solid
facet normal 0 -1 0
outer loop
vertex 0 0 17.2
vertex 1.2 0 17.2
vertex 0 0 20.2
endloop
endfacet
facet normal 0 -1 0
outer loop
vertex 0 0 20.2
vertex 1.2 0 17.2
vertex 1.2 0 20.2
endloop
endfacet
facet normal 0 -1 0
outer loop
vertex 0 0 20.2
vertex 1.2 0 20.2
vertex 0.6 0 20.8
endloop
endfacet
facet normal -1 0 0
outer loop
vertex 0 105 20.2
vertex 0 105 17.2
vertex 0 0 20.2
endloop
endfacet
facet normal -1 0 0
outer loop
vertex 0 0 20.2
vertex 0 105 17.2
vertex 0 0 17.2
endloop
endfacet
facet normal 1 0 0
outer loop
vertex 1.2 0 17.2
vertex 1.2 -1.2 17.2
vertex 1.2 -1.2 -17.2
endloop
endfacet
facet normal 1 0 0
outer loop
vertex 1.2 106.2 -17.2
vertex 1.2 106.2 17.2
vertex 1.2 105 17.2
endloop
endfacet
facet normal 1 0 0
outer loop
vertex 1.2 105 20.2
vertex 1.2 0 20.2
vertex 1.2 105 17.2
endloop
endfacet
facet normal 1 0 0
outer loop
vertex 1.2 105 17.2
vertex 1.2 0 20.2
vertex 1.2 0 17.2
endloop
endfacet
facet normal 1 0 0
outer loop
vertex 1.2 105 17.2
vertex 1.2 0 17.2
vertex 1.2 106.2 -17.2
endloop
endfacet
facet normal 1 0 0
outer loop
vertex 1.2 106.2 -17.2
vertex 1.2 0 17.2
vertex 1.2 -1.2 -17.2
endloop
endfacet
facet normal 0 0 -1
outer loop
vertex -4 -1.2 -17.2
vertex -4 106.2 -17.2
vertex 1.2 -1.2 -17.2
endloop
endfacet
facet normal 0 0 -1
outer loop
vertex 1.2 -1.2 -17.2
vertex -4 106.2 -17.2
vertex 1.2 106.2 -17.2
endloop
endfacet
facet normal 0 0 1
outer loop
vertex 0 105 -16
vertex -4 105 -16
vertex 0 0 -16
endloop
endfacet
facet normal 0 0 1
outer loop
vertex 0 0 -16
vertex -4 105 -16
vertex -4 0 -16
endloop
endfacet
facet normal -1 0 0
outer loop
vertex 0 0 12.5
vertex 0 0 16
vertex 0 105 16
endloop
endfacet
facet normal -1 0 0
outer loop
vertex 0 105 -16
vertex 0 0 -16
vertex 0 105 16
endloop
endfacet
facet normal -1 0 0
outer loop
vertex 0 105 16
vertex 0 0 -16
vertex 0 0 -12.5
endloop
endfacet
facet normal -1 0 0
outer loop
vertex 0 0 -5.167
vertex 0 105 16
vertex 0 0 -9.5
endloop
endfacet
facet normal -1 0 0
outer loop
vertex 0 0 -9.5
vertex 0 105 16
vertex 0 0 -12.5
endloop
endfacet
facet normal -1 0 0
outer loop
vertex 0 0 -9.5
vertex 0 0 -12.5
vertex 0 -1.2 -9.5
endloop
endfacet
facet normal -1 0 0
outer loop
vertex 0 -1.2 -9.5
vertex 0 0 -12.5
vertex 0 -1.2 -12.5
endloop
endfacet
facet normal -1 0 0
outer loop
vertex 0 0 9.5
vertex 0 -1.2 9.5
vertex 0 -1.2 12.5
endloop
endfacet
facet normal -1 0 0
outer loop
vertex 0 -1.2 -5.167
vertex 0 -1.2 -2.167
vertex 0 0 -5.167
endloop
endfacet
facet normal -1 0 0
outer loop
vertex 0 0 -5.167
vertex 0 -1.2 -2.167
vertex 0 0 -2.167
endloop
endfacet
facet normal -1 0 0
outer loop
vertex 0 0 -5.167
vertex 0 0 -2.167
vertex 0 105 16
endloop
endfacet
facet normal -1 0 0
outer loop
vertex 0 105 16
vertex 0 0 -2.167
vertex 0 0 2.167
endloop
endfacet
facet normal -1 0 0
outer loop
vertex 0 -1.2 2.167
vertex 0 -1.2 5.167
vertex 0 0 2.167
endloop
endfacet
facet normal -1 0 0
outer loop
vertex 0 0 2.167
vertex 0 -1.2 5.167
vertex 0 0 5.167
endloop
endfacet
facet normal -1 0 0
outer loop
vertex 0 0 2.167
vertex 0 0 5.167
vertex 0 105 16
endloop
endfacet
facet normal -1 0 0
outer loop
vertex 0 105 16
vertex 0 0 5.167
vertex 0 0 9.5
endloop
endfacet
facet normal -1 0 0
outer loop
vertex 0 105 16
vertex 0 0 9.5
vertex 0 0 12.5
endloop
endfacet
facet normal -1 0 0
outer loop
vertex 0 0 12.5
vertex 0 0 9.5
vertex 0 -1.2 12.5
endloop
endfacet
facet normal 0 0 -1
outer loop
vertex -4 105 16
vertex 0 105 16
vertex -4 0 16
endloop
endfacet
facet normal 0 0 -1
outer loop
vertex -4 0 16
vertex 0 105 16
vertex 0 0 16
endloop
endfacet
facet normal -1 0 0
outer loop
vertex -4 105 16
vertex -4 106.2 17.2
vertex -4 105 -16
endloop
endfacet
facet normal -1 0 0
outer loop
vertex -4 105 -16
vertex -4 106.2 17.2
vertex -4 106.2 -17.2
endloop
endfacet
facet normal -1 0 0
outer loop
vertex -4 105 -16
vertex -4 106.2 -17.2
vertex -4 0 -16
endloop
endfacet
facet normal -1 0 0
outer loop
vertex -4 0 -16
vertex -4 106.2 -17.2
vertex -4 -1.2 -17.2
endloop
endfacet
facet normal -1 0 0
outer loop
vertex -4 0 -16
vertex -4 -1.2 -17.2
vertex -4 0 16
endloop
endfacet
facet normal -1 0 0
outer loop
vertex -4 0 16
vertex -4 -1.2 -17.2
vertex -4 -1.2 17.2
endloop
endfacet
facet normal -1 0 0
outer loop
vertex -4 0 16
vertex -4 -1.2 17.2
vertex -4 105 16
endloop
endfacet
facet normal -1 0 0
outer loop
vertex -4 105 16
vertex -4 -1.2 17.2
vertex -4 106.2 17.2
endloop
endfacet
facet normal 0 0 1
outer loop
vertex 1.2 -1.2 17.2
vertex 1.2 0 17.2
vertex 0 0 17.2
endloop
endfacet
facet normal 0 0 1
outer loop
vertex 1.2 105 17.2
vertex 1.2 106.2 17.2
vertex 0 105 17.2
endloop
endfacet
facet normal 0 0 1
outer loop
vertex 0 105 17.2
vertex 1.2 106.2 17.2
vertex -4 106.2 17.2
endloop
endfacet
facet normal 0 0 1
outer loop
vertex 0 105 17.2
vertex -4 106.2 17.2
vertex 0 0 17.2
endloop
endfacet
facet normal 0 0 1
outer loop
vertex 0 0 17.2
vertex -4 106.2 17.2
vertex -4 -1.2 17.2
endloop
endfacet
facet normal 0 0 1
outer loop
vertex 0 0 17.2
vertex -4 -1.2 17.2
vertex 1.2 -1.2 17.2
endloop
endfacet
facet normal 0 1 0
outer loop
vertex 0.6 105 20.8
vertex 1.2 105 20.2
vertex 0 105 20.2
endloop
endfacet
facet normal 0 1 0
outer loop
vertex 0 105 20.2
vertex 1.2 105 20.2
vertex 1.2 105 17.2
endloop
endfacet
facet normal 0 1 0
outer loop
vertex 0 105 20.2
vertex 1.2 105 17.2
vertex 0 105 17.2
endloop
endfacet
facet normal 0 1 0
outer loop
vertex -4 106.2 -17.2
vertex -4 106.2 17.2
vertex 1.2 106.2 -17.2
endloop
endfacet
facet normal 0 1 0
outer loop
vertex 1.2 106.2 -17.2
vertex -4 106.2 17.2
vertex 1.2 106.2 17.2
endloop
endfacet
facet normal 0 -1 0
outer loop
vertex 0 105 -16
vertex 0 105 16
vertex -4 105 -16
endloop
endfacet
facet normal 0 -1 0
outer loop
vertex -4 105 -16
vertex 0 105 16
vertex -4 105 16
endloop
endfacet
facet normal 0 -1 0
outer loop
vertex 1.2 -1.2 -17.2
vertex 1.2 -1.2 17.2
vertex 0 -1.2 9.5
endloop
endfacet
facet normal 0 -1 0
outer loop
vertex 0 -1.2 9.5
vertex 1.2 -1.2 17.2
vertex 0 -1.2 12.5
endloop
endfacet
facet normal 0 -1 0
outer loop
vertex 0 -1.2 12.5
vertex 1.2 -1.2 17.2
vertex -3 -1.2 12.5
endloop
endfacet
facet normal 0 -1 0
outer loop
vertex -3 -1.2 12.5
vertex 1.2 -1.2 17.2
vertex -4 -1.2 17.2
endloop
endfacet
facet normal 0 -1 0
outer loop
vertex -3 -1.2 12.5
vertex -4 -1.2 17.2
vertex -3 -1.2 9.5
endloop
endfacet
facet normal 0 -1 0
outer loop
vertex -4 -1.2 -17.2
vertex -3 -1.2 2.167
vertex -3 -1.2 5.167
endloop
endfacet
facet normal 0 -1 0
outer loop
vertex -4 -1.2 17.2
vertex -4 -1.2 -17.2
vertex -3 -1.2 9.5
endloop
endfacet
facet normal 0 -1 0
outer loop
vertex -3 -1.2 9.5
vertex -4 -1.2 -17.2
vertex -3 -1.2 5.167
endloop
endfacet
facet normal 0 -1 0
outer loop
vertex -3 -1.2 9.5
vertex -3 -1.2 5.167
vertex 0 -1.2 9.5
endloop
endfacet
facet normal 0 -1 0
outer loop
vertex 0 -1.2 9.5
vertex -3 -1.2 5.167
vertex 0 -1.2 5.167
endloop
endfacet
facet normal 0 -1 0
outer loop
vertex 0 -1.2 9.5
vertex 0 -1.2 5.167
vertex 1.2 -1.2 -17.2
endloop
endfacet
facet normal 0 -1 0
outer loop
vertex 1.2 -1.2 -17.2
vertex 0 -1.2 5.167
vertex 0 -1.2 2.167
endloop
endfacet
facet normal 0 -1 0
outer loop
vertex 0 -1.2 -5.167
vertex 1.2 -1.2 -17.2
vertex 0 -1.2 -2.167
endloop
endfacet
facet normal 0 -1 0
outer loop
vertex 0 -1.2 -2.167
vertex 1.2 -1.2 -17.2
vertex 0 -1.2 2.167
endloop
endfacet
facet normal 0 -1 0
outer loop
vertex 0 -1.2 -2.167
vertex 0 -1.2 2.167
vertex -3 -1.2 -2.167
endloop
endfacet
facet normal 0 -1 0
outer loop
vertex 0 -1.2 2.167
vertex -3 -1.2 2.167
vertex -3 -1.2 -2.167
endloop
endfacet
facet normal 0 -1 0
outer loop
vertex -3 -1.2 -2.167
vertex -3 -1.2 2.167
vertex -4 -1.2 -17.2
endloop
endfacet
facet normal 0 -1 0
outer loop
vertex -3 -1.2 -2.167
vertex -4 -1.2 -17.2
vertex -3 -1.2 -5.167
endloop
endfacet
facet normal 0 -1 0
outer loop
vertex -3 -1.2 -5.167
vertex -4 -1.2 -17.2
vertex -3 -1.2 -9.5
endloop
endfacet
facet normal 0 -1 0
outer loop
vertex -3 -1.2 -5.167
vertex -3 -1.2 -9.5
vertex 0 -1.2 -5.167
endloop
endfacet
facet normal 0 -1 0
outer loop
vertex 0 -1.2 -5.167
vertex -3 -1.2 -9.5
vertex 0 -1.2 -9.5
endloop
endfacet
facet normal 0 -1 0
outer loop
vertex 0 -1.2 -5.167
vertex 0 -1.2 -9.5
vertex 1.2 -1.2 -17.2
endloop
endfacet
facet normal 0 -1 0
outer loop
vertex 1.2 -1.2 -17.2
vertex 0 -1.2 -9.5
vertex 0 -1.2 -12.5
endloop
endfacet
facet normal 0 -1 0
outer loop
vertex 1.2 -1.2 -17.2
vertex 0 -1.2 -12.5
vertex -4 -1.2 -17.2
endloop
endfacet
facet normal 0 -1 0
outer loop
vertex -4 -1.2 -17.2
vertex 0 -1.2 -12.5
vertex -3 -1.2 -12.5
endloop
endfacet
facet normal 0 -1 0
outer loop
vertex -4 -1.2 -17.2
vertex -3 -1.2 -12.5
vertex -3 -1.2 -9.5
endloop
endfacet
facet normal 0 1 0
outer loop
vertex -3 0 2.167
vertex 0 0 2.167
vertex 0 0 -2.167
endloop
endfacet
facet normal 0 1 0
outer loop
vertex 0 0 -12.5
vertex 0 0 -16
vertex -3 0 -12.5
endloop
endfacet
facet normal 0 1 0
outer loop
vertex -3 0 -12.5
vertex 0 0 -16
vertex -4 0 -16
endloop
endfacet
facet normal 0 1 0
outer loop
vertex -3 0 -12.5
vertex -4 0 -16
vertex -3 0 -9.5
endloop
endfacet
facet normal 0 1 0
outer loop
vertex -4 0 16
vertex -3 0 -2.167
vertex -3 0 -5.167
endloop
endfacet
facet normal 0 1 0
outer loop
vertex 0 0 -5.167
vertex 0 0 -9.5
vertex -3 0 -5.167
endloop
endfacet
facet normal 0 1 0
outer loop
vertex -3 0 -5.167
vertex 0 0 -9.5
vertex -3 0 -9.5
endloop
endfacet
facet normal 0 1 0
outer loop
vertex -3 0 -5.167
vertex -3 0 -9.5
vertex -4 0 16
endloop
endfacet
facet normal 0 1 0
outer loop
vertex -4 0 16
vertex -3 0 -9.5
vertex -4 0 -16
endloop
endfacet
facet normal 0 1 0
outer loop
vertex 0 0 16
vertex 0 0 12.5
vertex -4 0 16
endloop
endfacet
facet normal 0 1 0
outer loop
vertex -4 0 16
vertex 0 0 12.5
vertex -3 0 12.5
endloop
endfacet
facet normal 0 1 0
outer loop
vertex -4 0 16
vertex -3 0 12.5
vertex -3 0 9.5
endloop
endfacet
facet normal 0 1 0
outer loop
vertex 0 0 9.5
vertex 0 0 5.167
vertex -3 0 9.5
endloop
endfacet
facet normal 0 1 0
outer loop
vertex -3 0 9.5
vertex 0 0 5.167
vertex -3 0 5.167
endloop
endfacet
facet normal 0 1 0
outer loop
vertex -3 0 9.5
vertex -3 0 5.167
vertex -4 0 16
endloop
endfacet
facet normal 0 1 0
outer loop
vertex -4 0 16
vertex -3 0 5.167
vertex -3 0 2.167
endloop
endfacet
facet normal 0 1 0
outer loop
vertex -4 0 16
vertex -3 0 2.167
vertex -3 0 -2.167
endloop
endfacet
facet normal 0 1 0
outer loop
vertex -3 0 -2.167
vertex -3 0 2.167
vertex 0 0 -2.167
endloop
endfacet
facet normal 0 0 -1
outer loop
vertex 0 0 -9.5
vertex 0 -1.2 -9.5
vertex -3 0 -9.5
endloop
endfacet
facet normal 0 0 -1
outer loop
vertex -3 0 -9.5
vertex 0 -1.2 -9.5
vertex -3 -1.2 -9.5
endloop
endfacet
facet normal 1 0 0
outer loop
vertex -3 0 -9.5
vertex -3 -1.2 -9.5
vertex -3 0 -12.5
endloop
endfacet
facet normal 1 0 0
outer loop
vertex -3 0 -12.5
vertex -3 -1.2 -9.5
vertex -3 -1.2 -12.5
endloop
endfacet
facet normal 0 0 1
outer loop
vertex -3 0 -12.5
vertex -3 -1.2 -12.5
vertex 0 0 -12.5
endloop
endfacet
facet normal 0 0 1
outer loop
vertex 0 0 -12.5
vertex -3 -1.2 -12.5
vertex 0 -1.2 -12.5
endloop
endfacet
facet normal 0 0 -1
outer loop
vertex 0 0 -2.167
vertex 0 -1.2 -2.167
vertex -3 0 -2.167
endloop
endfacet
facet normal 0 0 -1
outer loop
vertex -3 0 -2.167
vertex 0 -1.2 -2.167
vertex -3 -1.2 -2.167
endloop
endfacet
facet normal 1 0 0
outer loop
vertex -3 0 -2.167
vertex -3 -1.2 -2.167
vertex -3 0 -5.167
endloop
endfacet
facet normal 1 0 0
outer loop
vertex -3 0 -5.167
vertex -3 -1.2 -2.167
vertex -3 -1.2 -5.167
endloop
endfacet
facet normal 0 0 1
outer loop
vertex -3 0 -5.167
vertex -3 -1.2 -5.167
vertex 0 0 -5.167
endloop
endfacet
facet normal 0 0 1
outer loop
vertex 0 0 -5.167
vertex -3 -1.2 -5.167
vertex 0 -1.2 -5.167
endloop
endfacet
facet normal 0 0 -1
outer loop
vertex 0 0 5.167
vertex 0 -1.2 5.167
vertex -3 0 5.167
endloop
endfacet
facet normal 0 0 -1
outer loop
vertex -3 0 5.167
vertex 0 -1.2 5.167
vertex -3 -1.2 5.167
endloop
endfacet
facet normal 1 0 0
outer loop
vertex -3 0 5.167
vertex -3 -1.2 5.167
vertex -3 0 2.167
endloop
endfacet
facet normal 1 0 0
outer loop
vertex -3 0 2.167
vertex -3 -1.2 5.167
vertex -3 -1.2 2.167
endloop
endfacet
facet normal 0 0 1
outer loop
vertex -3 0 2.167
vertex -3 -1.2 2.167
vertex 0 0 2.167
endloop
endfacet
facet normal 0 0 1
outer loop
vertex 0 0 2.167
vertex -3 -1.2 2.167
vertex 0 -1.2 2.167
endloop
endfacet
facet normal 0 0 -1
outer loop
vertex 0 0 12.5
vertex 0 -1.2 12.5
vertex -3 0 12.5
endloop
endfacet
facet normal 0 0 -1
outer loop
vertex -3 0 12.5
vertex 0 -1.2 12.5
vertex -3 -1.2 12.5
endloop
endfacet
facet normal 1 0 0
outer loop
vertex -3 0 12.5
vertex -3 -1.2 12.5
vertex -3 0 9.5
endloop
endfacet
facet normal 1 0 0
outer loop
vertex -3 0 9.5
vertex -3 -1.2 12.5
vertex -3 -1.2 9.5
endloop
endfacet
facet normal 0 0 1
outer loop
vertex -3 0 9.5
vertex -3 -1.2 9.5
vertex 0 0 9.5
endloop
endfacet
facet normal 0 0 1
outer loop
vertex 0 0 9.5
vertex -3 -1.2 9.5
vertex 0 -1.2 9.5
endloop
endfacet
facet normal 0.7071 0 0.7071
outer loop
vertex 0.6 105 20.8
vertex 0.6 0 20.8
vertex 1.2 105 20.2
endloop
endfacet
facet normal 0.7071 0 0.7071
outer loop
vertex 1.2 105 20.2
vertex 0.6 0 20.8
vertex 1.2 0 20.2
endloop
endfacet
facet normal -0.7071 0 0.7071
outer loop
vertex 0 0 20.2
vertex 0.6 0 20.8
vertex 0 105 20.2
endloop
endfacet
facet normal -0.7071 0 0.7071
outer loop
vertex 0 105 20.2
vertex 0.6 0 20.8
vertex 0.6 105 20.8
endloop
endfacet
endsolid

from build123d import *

# Parameters (mm, degrees)
BOSS_EXTRUDE1_DEPTH = 105
SKETCH2_W           = 5.2
SKETCH2_H           = 34.4
BOSS_EXTRUDE2_DEPTH = 1.2
SKETCH3_W           = 5.2
SKETCH3_H           = 34.4
BOSS_EXTRUDE3_DEPTH = 1.2
CUT_EXTRUDE1_REACH  = 110.369
SKETCH4_W           = 3
SKETCH4_H           = 3
CHAMFER1_SIZE       = 1


with BuildPart() as part:
    # Sketch1 → Boss-Extrude1 (new body)
    with BuildSketch(Plane(origin=(0, 0, 0), x_dir=(1, 0, 0), z_dir=(0, 1, 0))):
        Polygon((0, -16), (0, 16), (-4, 16), (-4, 17.2), (1.2, 17.2), (1.2, -17.2), (1.2, -21.2), (0, -21.2), (0, -17.2), (-4, -17.2), (-4, -16), align=None)
    extrude(amount=BOSS_EXTRUDE1_DEPTH)

    # Sketch2 → Boss-Extrude2 (add)
    with BuildSketch(Plane(origin=(0, 105, 0), x_dir=(1, 0, 0), z_dir=(0, 1, 0))):
        with Locations((-1.4, 0)):
            Rectangle(SKETCH2_W, SKETCH2_H)
    extrude(amount=BOSS_EXTRUDE2_DEPTH)

    # Sketch3 → Boss-Extrude3 (add)
    with BuildSketch(Plane.XZ):
        with Locations((-1.4, 0)):
            Rectangle(SKETCH3_W, SKETCH3_H)
    extrude(amount=BOSS_EXTRUDE3_DEPTH)

    # Sketch4 → Cut-Extrude1 (cut, up to next)
    with BuildSketch(Plane(origin=(0, 0, 0), x_dir=(1, 0, 0), z_dir=(0, 1, 0)), mode=Mode.PRIVATE) as cut_extrude1_sk1:
        with Locations((-1.5, -11)):
            Rectangle(SKETCH4_W, SKETCH4_H)
    cut_extrude1_tool1 = extrude(cut_extrude1_sk1.sketch, amount=-CUT_EXTRUDE1_REACH, mode=Mode.PRIVATE) & part.part
    # Sketch4 → Cut-Extrude1 (cut, up to next)
    with BuildSketch(Plane(origin=(0, 0, 0), x_dir=(1, 0, 0), z_dir=(0, 1, 0)), mode=Mode.PRIVATE) as cut_extrude1_sk2:
        with Locations((-1.5, -3.666666667)):
            Rectangle(SKETCH4_W, SKETCH4_H)
    cut_extrude1_tool2 = extrude(cut_extrude1_sk2.sketch, amount=-CUT_EXTRUDE1_REACH, mode=Mode.PRIVATE) & part.part
    # Sketch4 → Cut-Extrude1 (cut, up to next)
    with BuildSketch(Plane(origin=(0, 0, 0), x_dir=(1, 0, 0), z_dir=(0, 1, 0)), mode=Mode.PRIVATE) as cut_extrude1_sk3:
        with Locations((-1.5, 3.666666667)):
            Rectangle(SKETCH4_W, SKETCH4_H)
    cut_extrude1_tool3 = extrude(cut_extrude1_sk3.sketch, amount=-CUT_EXTRUDE1_REACH, mode=Mode.PRIVATE) & part.part
    # Sketch4 → Cut-Extrude1 (cut, up to next)
    with BuildSketch(Plane(origin=(0, 0, 0), x_dir=(1, 0, 0), z_dir=(0, 1, 0)), mode=Mode.PRIVATE) as cut_extrude1_sk4:
        with Locations((-1.5, 11)):
            Rectangle(SKETCH4_W, SKETCH4_H)
    cut_extrude1_tool4 = extrude(cut_extrude1_sk4.sketch, amount=-CUT_EXTRUDE1_REACH, mode=Mode.PRIVATE) & part.part
    add(cut_extrude1_tool1.solids().sort_by_distance((-1.5, 0, 11))[0], mode=Mode.SUBTRACT)
    add(cut_extrude1_tool2.solids().sort_by_distance((-1.5, 0, 3.666667))[0], mode=Mode.SUBTRACT)
    add(cut_extrude1_tool3.solids().sort_by_distance((-1.5, 0, -3.666667))[0], mode=Mode.SUBTRACT)
    add(cut_extrude1_tool4.solids().sort_by_distance((-1.5, 0, -11))[0], mode=Mode.SUBTRACT)

    # Chamfer1
    # the kernel refuses this chamfer: 1 mm, written as the material it takes off along each edge
    with BuildSketch(Plane(origin=(0, -2.571682988, 21.2), x_dir=(-0.02749587661058639, 0, -0.9996219169112968), z_dir=(0, 1, 0))) as chamfer1_piece_1:
        Polygon((CHAMFER1_SIZE * 0.999621916911, -CHAMFER1_SIZE * 0.0274958766106), (-CHAMFER1_SIZE * 0.0274958766106, -CHAMFER1_SIZE * 0.999621916911), (0, 0), align=None)
    extrude(amount=110.143365976, mode=Mode.SUBTRACT)
    with BuildSketch(Plane(origin=(1.2, -2.571682988, 21.2), x_dir=(0.027495876610586077, 0, -0.9996219169112968), z_dir=(0, 1, 0))) as chamfer1_piece_2:
        Polygon((CHAMFER1_SIZE * 0.999621916911, CHAMFER1_SIZE * 0.0274958766106), (-CHAMFER1_SIZE * 0.0274958766106, CHAMFER1_SIZE * 0.999621916911), (0, 0), align=None)
    extrude(amount=110.143365976, mode=Mode.SUBTRACT)


solid = part.part
